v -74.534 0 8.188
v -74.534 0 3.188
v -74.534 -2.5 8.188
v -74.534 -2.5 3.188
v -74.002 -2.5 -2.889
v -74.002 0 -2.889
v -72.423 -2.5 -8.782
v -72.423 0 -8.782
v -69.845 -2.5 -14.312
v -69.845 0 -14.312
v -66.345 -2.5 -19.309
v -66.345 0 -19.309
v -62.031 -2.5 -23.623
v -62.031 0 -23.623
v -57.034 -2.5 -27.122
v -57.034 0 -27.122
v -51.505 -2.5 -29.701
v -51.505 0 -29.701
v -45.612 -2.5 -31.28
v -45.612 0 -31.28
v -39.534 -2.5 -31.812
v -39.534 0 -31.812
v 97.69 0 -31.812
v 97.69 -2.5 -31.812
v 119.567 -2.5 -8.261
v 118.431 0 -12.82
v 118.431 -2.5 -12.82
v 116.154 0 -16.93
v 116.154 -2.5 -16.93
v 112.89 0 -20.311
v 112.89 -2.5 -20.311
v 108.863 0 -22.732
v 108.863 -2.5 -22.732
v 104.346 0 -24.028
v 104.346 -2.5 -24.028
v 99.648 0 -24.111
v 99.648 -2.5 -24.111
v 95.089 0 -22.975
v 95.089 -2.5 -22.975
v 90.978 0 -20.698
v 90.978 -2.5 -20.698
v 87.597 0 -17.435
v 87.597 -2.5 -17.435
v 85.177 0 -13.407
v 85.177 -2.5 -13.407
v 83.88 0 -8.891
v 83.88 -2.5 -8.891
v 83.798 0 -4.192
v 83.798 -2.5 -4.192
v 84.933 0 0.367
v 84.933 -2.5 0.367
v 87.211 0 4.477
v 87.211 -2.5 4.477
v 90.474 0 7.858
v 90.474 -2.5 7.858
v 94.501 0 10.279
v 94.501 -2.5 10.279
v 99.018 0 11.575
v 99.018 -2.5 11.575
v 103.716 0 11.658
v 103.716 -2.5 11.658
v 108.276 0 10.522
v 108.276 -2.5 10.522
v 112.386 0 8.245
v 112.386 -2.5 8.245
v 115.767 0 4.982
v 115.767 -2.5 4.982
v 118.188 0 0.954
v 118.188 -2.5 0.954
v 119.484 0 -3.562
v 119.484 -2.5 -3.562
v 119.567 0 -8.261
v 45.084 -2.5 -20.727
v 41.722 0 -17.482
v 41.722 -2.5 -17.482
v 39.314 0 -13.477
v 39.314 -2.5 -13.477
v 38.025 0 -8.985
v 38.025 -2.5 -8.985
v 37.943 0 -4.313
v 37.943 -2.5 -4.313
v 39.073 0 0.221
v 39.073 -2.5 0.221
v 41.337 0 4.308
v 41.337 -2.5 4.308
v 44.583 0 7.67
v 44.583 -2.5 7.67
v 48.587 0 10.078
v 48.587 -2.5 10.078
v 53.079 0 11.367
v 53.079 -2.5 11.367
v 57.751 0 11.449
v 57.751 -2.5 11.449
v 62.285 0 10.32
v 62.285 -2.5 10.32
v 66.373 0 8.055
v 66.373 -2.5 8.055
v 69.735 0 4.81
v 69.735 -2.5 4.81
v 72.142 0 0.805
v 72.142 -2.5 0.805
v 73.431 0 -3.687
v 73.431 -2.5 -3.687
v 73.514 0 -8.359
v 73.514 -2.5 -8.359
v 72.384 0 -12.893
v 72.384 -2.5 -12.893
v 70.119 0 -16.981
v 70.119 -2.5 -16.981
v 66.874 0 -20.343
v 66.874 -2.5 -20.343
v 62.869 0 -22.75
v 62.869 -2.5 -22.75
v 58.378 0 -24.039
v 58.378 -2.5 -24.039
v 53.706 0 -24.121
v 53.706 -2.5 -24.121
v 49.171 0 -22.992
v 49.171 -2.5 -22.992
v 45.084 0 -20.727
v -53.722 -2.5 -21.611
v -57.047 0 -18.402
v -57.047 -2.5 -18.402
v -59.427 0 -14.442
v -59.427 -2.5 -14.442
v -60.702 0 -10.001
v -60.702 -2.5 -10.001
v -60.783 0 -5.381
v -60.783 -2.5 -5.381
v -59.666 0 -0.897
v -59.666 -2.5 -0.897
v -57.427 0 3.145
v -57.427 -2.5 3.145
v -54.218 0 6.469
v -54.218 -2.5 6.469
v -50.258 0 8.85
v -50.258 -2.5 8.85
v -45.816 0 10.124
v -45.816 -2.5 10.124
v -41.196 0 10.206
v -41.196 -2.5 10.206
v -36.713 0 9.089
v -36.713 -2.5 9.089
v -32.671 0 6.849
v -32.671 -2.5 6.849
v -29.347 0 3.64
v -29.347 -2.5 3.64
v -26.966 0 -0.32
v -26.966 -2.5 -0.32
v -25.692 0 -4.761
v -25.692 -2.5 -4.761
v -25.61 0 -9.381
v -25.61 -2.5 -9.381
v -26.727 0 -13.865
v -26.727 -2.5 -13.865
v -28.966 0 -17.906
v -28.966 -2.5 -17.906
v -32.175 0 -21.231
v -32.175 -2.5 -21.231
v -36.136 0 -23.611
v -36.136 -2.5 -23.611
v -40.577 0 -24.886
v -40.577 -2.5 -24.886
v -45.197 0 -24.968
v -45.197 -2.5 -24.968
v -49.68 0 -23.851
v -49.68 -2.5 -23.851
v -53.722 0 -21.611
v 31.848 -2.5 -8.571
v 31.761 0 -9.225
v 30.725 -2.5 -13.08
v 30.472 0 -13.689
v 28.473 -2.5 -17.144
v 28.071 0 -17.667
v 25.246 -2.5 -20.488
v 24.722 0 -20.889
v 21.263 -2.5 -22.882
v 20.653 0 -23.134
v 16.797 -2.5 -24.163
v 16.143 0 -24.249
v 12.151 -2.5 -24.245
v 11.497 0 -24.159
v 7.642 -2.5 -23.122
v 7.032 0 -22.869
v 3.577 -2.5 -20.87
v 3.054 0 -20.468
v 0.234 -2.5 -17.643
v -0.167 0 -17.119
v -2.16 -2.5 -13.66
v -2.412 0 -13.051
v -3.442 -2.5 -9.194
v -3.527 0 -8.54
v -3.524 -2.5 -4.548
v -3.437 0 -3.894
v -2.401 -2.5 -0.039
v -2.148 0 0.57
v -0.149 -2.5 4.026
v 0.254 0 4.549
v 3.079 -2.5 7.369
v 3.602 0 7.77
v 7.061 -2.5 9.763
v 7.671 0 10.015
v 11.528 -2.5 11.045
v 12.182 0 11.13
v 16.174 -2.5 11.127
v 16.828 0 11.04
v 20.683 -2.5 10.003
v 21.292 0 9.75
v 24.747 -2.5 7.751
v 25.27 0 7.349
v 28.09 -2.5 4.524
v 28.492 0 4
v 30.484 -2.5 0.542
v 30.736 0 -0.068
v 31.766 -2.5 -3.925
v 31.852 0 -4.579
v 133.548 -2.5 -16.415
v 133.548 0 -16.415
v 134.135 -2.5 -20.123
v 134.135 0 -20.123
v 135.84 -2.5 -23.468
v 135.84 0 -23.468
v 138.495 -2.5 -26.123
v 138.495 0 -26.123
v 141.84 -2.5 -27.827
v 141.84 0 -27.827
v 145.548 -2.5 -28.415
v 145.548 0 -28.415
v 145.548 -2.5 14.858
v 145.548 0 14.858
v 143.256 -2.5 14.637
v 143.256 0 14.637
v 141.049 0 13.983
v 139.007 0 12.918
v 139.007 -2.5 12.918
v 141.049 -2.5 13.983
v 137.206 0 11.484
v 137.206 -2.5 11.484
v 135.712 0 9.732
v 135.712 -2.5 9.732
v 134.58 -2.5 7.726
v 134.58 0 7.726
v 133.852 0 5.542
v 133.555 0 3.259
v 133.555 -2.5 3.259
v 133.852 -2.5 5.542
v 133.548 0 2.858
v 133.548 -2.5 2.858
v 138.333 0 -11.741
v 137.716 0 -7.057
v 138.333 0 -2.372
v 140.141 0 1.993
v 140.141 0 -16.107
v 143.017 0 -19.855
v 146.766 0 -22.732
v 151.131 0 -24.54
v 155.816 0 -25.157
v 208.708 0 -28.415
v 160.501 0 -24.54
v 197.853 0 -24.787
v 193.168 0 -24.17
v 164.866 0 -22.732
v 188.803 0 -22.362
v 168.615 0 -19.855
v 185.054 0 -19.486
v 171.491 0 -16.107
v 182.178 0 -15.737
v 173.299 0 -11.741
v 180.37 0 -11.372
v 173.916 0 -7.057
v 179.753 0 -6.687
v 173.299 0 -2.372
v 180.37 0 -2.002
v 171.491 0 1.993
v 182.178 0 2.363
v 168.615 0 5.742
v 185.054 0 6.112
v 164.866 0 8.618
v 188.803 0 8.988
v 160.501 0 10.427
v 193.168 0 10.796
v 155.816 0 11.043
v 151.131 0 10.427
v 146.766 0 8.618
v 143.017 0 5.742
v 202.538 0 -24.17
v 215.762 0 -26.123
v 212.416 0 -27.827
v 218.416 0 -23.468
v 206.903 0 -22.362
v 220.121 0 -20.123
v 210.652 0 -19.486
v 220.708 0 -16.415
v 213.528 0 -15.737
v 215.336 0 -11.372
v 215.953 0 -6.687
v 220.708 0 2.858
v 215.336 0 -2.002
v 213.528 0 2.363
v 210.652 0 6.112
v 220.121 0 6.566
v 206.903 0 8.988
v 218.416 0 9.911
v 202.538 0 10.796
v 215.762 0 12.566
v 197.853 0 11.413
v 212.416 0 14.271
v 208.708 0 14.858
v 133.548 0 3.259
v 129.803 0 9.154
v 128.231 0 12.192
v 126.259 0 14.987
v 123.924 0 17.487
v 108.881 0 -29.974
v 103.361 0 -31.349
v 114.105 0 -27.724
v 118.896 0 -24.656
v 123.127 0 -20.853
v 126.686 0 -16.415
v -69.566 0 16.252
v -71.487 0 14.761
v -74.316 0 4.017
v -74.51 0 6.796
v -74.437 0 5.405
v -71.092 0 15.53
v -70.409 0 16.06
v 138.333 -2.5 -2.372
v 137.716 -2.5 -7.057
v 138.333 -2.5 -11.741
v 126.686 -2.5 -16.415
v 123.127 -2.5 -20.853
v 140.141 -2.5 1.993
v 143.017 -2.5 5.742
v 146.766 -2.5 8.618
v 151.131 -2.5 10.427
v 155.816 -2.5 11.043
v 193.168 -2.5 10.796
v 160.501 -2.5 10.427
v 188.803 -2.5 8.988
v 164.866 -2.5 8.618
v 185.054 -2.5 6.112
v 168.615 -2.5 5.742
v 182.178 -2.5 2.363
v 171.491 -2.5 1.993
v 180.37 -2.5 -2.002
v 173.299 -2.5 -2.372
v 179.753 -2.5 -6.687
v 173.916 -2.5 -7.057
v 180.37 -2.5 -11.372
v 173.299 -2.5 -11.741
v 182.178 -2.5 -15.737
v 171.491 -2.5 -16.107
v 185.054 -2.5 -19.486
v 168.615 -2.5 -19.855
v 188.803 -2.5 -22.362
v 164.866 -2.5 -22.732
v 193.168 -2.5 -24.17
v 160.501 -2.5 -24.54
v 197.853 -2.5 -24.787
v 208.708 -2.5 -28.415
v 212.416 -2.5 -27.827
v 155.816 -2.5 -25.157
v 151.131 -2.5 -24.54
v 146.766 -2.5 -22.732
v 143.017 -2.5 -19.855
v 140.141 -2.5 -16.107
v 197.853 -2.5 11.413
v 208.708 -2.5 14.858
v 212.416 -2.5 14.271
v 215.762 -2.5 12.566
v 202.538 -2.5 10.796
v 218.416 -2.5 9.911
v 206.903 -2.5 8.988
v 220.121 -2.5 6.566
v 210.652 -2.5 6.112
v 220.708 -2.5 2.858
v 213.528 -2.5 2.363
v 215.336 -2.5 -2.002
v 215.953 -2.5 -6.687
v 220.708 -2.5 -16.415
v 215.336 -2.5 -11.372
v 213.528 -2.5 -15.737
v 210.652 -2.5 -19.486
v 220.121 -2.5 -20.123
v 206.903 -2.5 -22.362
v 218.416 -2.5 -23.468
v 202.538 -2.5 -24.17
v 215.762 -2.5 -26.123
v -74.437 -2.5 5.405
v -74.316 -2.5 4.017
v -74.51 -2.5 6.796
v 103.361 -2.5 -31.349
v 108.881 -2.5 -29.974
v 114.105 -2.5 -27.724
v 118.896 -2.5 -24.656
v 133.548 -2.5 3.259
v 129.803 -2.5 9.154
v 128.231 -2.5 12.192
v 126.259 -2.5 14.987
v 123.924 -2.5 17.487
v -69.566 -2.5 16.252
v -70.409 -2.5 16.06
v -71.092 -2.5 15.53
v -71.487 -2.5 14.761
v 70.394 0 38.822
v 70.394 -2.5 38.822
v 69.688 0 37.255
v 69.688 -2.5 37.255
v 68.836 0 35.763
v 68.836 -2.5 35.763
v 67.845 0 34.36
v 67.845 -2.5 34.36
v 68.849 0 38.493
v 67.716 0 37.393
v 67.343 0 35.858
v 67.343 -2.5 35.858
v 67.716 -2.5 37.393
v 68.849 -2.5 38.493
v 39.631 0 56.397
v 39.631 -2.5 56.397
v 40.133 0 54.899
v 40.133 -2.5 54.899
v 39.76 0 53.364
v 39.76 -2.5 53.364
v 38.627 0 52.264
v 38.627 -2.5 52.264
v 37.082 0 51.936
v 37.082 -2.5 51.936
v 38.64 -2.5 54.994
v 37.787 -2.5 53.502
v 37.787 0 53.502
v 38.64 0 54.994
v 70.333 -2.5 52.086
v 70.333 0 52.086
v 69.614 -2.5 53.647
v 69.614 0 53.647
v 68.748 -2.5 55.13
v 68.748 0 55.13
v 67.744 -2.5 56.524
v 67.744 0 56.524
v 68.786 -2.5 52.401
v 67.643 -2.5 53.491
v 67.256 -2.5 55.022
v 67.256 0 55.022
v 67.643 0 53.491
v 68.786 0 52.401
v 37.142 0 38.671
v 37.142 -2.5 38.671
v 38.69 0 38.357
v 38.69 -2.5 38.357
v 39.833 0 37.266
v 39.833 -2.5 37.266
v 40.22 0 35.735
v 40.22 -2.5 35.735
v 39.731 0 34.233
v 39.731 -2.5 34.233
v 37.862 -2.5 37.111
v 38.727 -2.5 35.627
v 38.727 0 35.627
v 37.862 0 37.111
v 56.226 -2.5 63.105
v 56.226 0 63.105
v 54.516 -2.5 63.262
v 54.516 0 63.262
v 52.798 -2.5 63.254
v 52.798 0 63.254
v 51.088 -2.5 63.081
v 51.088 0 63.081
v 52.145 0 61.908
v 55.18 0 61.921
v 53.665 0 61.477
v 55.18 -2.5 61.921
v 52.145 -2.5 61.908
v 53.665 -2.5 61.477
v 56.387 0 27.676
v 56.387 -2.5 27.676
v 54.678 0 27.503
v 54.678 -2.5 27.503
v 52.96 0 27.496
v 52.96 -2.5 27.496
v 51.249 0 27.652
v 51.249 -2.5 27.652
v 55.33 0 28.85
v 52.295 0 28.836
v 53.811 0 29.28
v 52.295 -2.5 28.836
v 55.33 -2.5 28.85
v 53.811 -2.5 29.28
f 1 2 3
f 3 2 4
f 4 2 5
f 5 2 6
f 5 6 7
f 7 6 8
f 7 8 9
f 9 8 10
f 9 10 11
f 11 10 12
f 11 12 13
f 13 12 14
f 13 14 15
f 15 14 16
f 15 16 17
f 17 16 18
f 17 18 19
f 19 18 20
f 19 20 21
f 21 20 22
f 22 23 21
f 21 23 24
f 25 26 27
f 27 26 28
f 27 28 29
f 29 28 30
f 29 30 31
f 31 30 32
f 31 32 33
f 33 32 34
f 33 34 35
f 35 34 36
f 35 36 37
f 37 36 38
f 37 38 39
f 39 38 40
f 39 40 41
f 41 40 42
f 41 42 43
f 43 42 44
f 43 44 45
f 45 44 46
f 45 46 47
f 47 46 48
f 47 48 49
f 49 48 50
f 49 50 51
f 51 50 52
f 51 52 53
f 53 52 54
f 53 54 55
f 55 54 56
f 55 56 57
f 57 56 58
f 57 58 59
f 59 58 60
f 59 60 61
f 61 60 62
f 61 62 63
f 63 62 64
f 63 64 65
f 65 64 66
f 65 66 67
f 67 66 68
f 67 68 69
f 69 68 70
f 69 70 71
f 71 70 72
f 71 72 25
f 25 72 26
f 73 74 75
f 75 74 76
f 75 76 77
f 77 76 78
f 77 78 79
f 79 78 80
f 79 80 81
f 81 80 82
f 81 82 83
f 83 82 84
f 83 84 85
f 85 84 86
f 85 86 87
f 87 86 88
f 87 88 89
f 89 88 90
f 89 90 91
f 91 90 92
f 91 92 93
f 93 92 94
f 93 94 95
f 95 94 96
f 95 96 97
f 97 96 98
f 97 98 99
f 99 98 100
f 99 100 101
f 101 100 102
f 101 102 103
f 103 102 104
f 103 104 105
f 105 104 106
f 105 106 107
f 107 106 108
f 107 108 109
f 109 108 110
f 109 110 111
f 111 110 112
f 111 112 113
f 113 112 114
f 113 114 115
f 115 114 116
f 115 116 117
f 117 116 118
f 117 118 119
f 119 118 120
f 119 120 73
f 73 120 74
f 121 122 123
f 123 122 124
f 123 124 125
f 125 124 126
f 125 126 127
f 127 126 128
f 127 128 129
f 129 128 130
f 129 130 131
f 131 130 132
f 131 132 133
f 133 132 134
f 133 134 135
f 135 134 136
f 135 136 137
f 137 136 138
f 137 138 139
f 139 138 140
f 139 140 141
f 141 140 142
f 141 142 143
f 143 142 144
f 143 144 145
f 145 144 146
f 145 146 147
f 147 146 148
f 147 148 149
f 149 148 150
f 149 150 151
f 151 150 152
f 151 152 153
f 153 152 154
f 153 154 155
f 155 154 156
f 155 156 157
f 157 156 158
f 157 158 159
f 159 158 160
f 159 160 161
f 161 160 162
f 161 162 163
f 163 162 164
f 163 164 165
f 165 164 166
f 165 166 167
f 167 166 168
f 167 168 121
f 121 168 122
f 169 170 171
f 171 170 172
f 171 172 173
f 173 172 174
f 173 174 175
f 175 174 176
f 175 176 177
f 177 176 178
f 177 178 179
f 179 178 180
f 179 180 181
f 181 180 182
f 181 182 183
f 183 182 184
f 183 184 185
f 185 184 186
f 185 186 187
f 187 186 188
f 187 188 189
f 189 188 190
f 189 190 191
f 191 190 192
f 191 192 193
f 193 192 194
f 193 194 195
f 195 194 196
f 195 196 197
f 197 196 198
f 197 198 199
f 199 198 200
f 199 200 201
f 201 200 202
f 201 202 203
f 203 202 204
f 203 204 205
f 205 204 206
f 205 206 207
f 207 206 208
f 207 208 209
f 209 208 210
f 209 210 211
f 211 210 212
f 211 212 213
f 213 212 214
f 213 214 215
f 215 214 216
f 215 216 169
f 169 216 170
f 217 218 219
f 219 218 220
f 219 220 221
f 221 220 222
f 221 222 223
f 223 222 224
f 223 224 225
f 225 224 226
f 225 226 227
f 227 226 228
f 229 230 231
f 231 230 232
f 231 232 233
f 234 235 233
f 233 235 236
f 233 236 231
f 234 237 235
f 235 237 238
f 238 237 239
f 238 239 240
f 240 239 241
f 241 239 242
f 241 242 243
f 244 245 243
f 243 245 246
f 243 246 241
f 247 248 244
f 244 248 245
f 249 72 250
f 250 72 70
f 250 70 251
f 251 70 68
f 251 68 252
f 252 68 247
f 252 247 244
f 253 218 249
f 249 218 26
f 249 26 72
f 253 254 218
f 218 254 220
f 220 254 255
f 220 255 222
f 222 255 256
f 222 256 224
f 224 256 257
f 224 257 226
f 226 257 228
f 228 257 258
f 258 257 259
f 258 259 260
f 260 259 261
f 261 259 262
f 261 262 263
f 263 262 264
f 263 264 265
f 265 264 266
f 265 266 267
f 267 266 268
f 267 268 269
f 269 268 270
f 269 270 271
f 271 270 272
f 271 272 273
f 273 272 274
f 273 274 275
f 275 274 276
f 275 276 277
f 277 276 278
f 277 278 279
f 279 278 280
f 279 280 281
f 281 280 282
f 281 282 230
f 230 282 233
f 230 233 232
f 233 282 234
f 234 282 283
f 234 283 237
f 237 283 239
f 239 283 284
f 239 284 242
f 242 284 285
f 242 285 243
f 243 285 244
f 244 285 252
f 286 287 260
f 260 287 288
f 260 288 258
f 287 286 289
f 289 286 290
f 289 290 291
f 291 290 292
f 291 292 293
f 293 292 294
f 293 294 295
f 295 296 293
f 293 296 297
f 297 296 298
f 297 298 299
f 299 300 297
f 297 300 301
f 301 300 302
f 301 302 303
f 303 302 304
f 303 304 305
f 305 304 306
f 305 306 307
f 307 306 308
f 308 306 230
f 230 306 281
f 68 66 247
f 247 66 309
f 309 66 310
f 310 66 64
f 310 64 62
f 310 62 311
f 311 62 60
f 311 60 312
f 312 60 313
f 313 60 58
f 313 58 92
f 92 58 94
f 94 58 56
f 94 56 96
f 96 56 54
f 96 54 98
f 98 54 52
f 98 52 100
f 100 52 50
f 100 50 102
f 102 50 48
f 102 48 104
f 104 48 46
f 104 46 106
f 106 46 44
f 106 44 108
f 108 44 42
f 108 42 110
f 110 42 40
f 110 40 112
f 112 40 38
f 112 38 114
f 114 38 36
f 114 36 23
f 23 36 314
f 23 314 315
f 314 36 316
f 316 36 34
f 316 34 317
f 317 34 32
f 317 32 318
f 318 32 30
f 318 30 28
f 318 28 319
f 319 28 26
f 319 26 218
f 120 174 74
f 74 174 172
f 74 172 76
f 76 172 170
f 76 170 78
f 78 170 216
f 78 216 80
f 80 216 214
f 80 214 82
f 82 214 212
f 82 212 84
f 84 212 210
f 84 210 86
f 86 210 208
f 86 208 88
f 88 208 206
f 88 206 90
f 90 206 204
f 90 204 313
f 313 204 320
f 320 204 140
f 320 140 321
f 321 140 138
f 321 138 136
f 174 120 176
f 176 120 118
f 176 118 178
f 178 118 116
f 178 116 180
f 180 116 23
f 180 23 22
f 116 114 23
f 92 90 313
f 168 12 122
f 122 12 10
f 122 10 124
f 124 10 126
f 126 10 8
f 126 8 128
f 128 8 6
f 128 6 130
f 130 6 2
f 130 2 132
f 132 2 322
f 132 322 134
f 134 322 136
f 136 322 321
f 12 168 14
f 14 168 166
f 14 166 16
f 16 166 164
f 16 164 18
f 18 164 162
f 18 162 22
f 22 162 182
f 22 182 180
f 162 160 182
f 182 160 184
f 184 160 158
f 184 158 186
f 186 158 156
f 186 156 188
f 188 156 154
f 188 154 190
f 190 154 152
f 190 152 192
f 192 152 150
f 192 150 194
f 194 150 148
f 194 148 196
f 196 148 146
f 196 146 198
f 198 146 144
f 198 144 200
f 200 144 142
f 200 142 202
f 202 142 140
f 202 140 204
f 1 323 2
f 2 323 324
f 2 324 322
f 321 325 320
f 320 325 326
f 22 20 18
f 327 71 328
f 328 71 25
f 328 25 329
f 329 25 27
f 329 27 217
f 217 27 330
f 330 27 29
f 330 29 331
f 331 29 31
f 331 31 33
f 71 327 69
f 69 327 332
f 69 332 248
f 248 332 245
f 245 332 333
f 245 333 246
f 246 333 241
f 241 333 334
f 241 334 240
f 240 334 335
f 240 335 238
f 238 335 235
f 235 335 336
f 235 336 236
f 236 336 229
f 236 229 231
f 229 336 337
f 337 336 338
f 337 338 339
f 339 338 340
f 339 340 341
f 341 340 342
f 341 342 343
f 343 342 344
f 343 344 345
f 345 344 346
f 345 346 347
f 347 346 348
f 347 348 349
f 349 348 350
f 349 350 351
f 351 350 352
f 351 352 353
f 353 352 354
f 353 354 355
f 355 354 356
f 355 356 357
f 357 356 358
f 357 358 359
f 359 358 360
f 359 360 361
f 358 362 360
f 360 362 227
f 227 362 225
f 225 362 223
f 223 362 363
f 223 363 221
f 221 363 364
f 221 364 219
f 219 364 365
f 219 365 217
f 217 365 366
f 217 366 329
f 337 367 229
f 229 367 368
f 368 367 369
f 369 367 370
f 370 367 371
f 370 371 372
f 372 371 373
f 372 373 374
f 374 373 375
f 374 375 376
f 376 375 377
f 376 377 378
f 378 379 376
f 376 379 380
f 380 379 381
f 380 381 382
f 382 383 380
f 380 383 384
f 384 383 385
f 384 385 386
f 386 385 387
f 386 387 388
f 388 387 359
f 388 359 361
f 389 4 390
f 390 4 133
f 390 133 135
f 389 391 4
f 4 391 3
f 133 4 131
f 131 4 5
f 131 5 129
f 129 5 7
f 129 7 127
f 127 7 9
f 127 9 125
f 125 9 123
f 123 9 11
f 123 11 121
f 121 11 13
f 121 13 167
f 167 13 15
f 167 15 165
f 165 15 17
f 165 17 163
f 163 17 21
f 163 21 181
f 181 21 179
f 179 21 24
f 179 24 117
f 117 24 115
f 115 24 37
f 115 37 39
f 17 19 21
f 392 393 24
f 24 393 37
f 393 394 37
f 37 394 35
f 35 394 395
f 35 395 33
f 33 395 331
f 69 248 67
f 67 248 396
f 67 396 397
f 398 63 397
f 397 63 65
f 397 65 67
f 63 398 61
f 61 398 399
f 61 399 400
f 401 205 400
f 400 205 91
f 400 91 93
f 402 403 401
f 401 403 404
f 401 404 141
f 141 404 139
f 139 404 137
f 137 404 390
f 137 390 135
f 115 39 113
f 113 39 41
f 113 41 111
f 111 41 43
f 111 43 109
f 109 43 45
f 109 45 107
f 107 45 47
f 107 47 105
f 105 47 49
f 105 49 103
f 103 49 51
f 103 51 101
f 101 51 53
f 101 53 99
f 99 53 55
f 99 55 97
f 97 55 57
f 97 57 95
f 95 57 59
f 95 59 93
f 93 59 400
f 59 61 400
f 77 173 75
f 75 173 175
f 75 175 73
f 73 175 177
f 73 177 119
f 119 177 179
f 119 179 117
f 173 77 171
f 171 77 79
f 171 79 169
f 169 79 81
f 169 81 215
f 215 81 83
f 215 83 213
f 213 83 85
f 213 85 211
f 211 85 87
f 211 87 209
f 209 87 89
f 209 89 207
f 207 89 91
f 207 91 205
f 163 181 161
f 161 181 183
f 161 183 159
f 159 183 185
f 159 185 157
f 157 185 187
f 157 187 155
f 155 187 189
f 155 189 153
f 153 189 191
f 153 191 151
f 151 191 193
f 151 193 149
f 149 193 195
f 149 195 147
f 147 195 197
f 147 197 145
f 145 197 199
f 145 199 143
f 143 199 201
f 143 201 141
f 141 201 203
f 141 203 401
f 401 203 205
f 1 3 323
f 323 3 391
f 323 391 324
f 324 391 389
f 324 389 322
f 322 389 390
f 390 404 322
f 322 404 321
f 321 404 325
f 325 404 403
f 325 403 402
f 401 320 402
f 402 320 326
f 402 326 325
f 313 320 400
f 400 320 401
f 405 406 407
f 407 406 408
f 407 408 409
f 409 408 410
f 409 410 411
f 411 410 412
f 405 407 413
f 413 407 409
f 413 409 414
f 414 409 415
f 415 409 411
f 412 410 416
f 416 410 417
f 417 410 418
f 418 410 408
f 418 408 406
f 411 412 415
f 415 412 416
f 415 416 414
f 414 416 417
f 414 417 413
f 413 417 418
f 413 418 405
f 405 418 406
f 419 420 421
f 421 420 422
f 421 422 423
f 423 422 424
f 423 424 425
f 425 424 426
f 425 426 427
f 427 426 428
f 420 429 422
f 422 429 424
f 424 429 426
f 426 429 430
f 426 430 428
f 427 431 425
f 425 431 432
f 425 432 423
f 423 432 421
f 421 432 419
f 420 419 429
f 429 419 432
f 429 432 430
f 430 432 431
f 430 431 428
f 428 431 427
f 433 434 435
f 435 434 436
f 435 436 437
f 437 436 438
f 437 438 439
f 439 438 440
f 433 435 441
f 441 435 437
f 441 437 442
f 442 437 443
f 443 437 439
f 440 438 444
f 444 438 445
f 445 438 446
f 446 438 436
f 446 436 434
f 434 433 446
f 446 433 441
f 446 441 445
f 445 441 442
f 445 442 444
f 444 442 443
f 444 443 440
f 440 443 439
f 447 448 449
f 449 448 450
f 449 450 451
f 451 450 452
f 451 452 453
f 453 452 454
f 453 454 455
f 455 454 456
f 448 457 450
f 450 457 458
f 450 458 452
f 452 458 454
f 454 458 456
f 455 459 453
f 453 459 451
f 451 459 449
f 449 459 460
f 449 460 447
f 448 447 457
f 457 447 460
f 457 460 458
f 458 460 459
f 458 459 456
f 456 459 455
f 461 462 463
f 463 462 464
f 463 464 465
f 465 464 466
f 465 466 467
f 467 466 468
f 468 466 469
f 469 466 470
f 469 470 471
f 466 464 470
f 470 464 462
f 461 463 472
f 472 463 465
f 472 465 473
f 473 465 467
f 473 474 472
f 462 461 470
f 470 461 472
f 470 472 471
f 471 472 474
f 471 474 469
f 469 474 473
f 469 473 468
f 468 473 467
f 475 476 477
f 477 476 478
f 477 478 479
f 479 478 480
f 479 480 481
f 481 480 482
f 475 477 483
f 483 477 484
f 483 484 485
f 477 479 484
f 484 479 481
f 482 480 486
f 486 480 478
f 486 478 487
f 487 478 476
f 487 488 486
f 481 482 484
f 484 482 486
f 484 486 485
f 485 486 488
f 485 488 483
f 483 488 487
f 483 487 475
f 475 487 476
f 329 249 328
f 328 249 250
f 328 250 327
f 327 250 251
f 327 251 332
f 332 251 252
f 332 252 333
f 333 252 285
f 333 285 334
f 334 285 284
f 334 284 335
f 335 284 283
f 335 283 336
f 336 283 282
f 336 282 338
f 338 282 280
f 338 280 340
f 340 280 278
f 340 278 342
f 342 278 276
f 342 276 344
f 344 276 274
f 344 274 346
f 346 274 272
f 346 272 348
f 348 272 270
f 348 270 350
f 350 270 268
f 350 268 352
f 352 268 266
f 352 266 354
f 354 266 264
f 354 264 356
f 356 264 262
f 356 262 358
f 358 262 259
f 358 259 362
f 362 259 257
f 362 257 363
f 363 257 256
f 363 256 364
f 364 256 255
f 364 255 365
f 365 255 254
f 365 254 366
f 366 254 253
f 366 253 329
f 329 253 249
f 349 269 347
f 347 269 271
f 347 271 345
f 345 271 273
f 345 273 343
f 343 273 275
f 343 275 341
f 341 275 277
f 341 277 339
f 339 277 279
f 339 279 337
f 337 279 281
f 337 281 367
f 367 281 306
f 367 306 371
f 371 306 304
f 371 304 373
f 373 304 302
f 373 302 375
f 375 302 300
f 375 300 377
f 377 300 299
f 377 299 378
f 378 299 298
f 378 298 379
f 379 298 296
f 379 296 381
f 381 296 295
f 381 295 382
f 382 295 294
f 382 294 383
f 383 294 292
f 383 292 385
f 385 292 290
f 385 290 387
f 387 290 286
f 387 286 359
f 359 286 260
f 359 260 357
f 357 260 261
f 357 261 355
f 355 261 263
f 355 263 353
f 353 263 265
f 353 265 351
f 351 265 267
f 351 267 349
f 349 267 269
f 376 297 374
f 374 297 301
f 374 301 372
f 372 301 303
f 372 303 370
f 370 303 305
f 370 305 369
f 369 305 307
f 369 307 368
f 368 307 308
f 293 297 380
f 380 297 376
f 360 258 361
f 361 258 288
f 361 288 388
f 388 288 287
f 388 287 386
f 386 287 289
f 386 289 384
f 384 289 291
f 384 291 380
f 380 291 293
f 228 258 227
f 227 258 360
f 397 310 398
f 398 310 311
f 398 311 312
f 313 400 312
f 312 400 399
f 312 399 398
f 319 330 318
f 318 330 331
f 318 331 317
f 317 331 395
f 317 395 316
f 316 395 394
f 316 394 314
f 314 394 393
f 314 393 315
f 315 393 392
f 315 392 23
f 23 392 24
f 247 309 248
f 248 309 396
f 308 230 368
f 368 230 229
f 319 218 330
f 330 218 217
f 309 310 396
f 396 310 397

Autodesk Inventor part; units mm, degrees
ref_plane "YZ Plane" through (0, 0, 0) normal (1, 0, 0) x (0, 1, 0)
ref_plane "XZ Plane" through (0, 0, 0) normal (0, 1, 0) x (-1, 0, 0)
ref_plane "XY Plane" through (0, 0, 0) normal (0, 0, 1) x (1, 0, 0)
sketch "BASEsc" plane through (0, 0, 0) normal (0, 1, 0) x (-1, 0, 0)
  arc A0 (-30.7364, -0.0681) -> (-28.0904, 4.5242) centre (-30.3216, 2.7513) ccw
  arc A1 (-16.8277, 11.04) -> (-11.5277, 11.0446) centre (-14.1786, 12.0904) ccw
  arc A2 (-11.4967, -24.1586) -> (-16.7967, -24.1633) centre (-14.1458, -25.2091) ccw
  arc A3 (-0.2535, 4.5487) -> (2.4005, -0.0389) centre (1.9807, 2.7798) ccw
  arc A4 (-28.0709, -17.6674) -> (-30.7249, -13.0798) centre (-30.3051, -15.8984) ccw
  circle A5 centre (-14.1622, -6.5593) radius 17.8
  arc A6 (2.412, -13.0506) -> (-0.234, -17.6429) centre (1.9972, -15.87) ccw
  circle A7 centre (-55.7283, -6.3362) radius 17.9
  arc A8 (-58.3938, 11.2631) -> (-53.0938, 11.2678) centre (-55.7447, 12.3136) ccw
  arc A9 (-41.8196, 4.7719) -> (-39.1656, 0.1843) centre (-39.5854, 3.0029) ccw
  arc A10 (-72.3025, 0.1551) -> (-69.6565, 4.7474) centre (-71.8877, 2.9745) ccw
  arc A11 (-69.637, -17.4442) -> (-72.291, -12.8566) centre (-71.8712, -15.6753) ccw
  arc A12 (-53.0767, -24.0387) -> (-58.3776, -24.039) centre (-55.7271, -25.0859) ccw
  arc A13 (-39.1541, -12.8274) -> (-41.8001, -17.4197) centre (-39.569, -15.6468) ccw
  circle A14 centre (-101.6822, -6.2265) radius 18
  arc A15 (-99.0445, -24.0322) -> (-104.3463, -24.0282) centre (-101.6962, -25.0761) ccw
  arc A16 (-39.0717, -12.8911) -> (-41.7218, -17.4819) centre (-39.49, -15.71) ccw
  arc A17 (-41.7233, 4.8114) -> (-39.0725, 0.2209) centre (-39.4912, 3.0397) ccw
  arc A18 (-58.3799, 11.3664) -> (-53.079, 11.3667) centre (-55.7295, 12.4135) ccw
  arc A19 (-72.3849, 0.2188) -> (-69.7348, 4.8096) centre (-71.9666, 3.0377) ccw
  arc A20 (-69.7334, -17.4837) -> (-72.3841, -12.8932) centre (-71.9654, -15.7121) ccw
  circle A21 centre (43.1966, -7.3809) radius 17.7
  arc A22 (45.8761, -24.8769) -> (40.5769, -24.886) centre (43.2283, -25.9306) ccw
  circle A23 centre (45.2732, 42.9601) radius 17.7
  arc A24 (47.7889, 25.4398) -> (42.6535, 25.455) centre (45.2175, 24.2112) ccw
  arc A25 (-51.2492, 27.6525) -> (-56.3871, 27.6758) centre (-53.8237, 26.4307) ccw
  circle A26 centre (-53.7378, 45.3786) radius 17.9
  arc A27 (-84.9432, -12.845) -> (-87.5975, -17.4345) centre (-85.365, -15.6634) ccw
  arc A28 (-87.5809, 4.9607) -> (-84.9334, 0.3672) centre (-85.351, 3.1862) ccw
  arc A29 (-104.3199, 11.5792) -> (-99.0181, 11.5753) centre (-101.6682, 12.6231) ccw
  arc A30 (-118.4212, 0.3921) -> (-115.7669, 4.9816) centre (-117.9994, 3.2104) ccw
  arc A31 (-115.7835, -17.4136) -> (-118.431, -12.8202) centre (-118.0134, -15.6392) ccw
  arc A32 (-37.1422, 38.6707) -> (-39.7313, 34.2328) centre (-37.3714, 35.8302) ccw
  arc A33 (-39.6308, 56.3969) -> (-37.082, 51.9357) centre (-37.2854, 54.7782) ccw
  arc A34 (-56.2264, 63.1048) -> (-51.0885, 63.0815) centre (-53.6518, 64.3265) ccw
  arc A35 (-70.3334, 52.0865) -> (-67.7443, 56.5244) centre (-70.1042, 54.927) ccw
  arc A36 (-67.8448, 34.3603) -> (-70.3936, 38.8215) centre (-70.1901, 35.9791) ccw
  arc A37 (61.7041, 36.3785) -> (59.1232, 31.9388) centre (61.4824, 33.5374) ccw
  arc A38 (59.1885, 53.8989) -> (61.7429, 49.4439) centre (61.5381, 52.2863) ccw
  arc A39 (42.7576, 60.4804) -> (47.8929, 60.4652) centre (45.3289, 61.7089) ccw
  arc A40 (28.8424, 49.5417) -> (31.4233, 53.9813) centre (29.0641, 52.3828) ccw
  arc A41 (31.358, 32.0213) -> (28.8036, 36.4763) centre (29.0084, 33.6339) ccw
  arc A42 (59.6883, -13.8084) -> (57.0466, -18.4022) centre (59.2769, -16.6283) ccw
  arc A43 (57.0088, 3.6876) -> (59.6663, -0.8971) centre (59.2452, 1.9214) ccw
  arc A44 (40.5171, 10.1151) -> (45.8163, 10.1242) centre (43.1649, 11.1688) ccw
  arc A45 (26.7049, -0.9534) -> (29.3466, 3.6404) centre (27.1162, 1.8665) ccw
  arc A46 (29.3843, -18.4494) -> (26.7269, -13.8647) centre (27.1479, -16.6832) ccw
  line L0 (39.5339, -31.8115) -> (-97.6905, -31.8115)
  line L1 (-132.6905, 3.1885) -> (-132.6905, 34.7246)
  line L2 (-76.3868, 69.7246) -> (-21.7967, 69.7246)
  line L3 (74.5339, 34.7246) -> (74.5339, 3.1885)
  arc A47 (34.5339, -31.8115) -> (74.5339, 8.1885) centre (34.5339, 8.1885) ccw
  arc A48 (74.5339, 34.7246) -> (39.5339, 69.7246) centre (39.5339, 34.7246) ccw
  arc A49 (39.5339, -31.8115) -> (74.5339, 3.1885) centre (39.5339, 3.1885) ccw
  arc A50 (-132.6905, 3.1885) -> (-97.6905, -31.8115) centre (-97.6905, 3.1885) ccw
  arc A51 (-97.6905, 69.7246) -> (-132.6905, 34.7246) centre (-97.6905, 34.7246) ccw
  line L4 (-86.3868, 24.2112) -> (-132.6905, 24.2112)
  line L5 (-132.6905, 24.2112) -> (-132.6905, 69.7246)
  line L6 (-132.6905, 69.7246) -> (-81.3868, 69.7246)
  line L7 (-81.3868, 64.7246) -> (-81.3868, 29.2112)
  line L8 (14.5191, 69.7246) -> (-16.7967, 69.7246)
  line L9 (-16.7967, 64.7246) -> (-16.7967, 23.9565)
  line L10 (-11.7967, 18.9565) -> (9.5191, 18.9565)
  line L11 (14.5191, 23.9565) -> (14.5191, 69.7246)
  arc A52 (9.5191, 18.9565) -> (14.5191, 23.9565) centre (9.5191, 23.9565) ccw
  arc A53 (-16.7967, 23.9565) -> (-11.7967, 18.9565) centre (-11.7967, 23.9565) ccw
  arc A54 (-86.3868, 24.2112) -> (-81.3868, 29.2112) centre (-86.3868, 29.2112) ccw
  arc A55 (-76.3868, 69.7246) -> (-81.3868, 64.7246) centre (-76.3868, 64.7246) ccw
  arc A56 (-16.7967, 64.7246) -> (-21.7967, 69.7246) centre (-21.7967, 64.7246) ccw
  line L12 (39.5339, 69.7246) -> (-21.7967, 69.7246)
  line L13 (74.5339, 3.1885) -> (71.4874, 14.7614)
  line L14 (69.5661, 16.2522) -> (-124.7088, 17.4921)
  line L15 (-126.5328, 16.3402) -> (-132.6905, 3.1885)
  arc A57 (71.4874, 14.7614) -> (69.5661, 16.2522) centre (69.5533, 14.2523) ccw
  arc A58 (-124.7088, 17.4921) -> (-126.5328, 16.3402) centre (-124.7215, 15.4921) ccw
  circle A59 centre (-155.8159, -7.0568) radius 18.1
  arc A60 (-153.1971, -24.9663) -> (-158.4461, -24.9646) centre (-155.8219, -25.965) ccw
  arc A61 (-138.9964, -13.7436) -> (-141.6223, -18.2885) centre (-139.4438, -16.5161) ccw
  arc A62 (-141.6152, 4.166) -> (-138.9922, -0.3806) centre (-139.4379, 2.3922) ccw
  arc A63 (-158.4347, 10.8528) -> (-153.1858, 10.8511) centre (-155.8099, 11.8515) ccw
  arc A64 (-172.6354, -0.3699) -> (-170.0095, 4.175) centre (-172.188, 2.4026) ccw
  arc A65 (-170.0166, -18.2795) -> (-172.6397, -13.7329) centre (-172.194, -16.5057) ccw
  arc A66 (-183.6523, 4.5357) -> (-181.0293, -0.0109) centre (-181.475, 2.7619) ccw
  arc A67 (-200.4718, 11.2225) -> (-195.2229, 11.2208) centre (-197.847, 12.2212) ccw
  arc A68 (-214.6725, -0.0003) -> (-212.0466, 4.5446) centre (-214.2251, 2.7723) ccw
  arc A69 (-212.0537, -17.9098) -> (-214.6768, -13.3632) centre (-214.2311, -16.136) ccw
  arc A70 (-195.2342, -24.5966) -> (-200.4832, -24.595) centre (-197.859, -25.5954) ccw
  circle A71 centre (-197.853, -6.6871) radius 18.1
  arc A72 (-181.0335, -13.3739) -> (-183.6594, -17.9188) centre (-181.481, -16.1464) ccw
  line L16 (-145.5481, -28.4145) -> (-208.7082, -28.4145)
  line L17 (-220.7082, -16.4145) -> (-220.7082, 2.858)
  line L18 (-208.7082, 14.858) -> (-145.5481, 14.858)
  line L19 (-133.5481, 2.858) -> (-133.5481, -16.4145)
  arc A73 (-145.5481, -28.4145) -> (-133.5481, -16.4145) centre (-145.5481, -16.4145) ccw
  arc A74 (-220.7082, -16.4145) -> (-208.7082, -28.4145) centre (-208.7082, -16.4145) ccw
  arc A75 (-208.7082, 14.858) -> (-220.7082, 2.858) centre (-208.7082, 2.858) ccw
  arc A76 (-133.5481, 2.858) -> (-145.5481, 14.858) centre (-145.5481, 2.858) ccw
  point P0 (0, 0)
  point P1 (-14.1467, -24.3593)
  point P2 (-27.8531, 1.3272)
  point P3 (-14.1777, 9.2407)
  point P4 (-14.1467, -22.3593)
  point P5 (-0.4868, 1.3541)
  point P6 (-27.8376, -14.4728)
  point P7 (-0.4712, -14.4459)
  point P8 (-41.5661, 0.2232)
  point P9 (-55.7127, -24.2361)
  point P10 (-55.7438, 9.4638)
  point P11 (-42.0529, 1.5773)
  point P12 (-69.4193, 1.5504)
  point P13 (-69.4038, -14.2496)
  point P14 (-55.7127, -22.2361)
  point P15 (-42.0374, -14.2227)
  point P16 (-87.52, 0.3329)
  point P17 (-101.6665, -24.2265)
  point P18 (-101.6977, 9.5735)
  point P19 (-88.0068, 1.6869)
  point P20 (-115.3732, 1.6601)
  point P21 (-115.3576, -14.1399)
  point P22 (-101.6665, -22.2265)
  point P23 (-87.9913, -14.1131)
  point P24 (-41.9507, -14.2726)
  point P25 (-41.9663, 1.6273)
  point P26 (-55.7439, 9.5638)
  point P27 (-69.5059, 1.6003)
  point P28 (-69.4903, -14.2997)
  point P29 (57.3588, -0.8216)
  point P30 (29.5211, -15.2943)
  point P31 (56.872, 0.5325)
  point P32 (43.212, -25.0809)
  point P33 (29.5056, 0.5057)
  point P34 (43.1811, 8.4191)
  point P35 (56.8875, -15.2675)
  point P36 (43.212, -23.0809)
  point P37 (59.4354, 49.5194)
  point P38 (31.5978, 35.0467)
  point P39 (58.9487, 50.8735)
  point P40 (45.2887, 25.2601)
  point P41 (31.5823, 50.8467)
  point P42 (45.2577, 58.7601)
  point P43 (58.9642, 35.0735)
  point P44 (45.2887, 27.0601)
  point P45 (-40.0468, 37.492)
  point P46 (-39.5756, 51.9379)
  point P47 (-40.0623, 53.292)
  point P48 (-53.7222, 29.2786)
  point P49 (-53.7222, 27.4786)
  point P50 (-53.7533, 61.1786)
  point P51 (-67.4287, 53.2652)
  point P52 (-67.4132, 37.4652)
  point P53 (-87.818, -14.2129)
  point P54 (-87.8336, 1.7871)
  point P55 (-101.6979, 9.7735)
  point P56 (-115.5464, 1.7599)
  point P57 (-115.5308, -14.2401)
  point P58 (-39.787, 37.3421)
  point P59 (-39.8026, 53.4421)
  point P60 (-53.7534, 61.4786)
  point P61 (-67.6886, 53.4151)
  point P62 (-67.673, 37.3151)
  point P63 (59.0507, 35.0234)
  point P64 (59.0353, 50.9234)
  point P65 (45.2578, 58.8601)
  point P66 (31.4957, 50.8967)
  point P67 (31.5111, 34.9967)
  point P68 (56.8009, -15.2175)
  point P69 (56.7855, 0.4824)
  point P70 (43.1812, 8.3191)
  point P71 (29.5923, 0.4557)
  point P72 (29.6077, -15.2442)
  point P73 (-97.6905, 69.7246)
  point P74 (-16.7967, 69.7246)
  point P75 (-67.8448, 34.3603)
  point P76 (-39.7313, 34.2328)
  point P77 (-37.1422, 38.6707)
  point P78 (-37.082, 51.9357)
  point P79 (-51.0885, 63.0815)
  point P80 (-67.7443, 56.5244)
  point P81 (-70.3334, 52.0865)
  point P82 (-118.431, -12.8202)
  point P83 (-115.7835, -17.4136)
  point P84 (-87.5975, -17.4345)
  point P85 (-84.9334, 0.3672)
  point P86 (-87.5809, 4.9607)
  point P87 (-104.3199, 11.5792)
  point P88 (-115.7669, 4.9816)
  point P89 (-118.4212, 0.3921)
  point P90 (-72.3841, -12.8932)
  point P91 (-39.0725, 0.2209)
  point P92 (-41.7233, 4.8114)
  point P93 (-53.079, 11.3667)
  point P94 (-58.3799, 11.3664)
  point P95 (-69.7348, 4.8096)
  point P96 (-72.3849, 0.2188)
  point P97 (-0.234, -17.6429)
  point P98 (2.412, -13.0506)
  point P99 (2.4005, -0.0389)
  point P100 (-0.2535, 4.5487)
  point P101 (-11.5277, 11.0446)
  point P102 (-16.8277, 11.04)
  point P103 (-28.0904, 4.5242)
  point P104 (-30.7364, -0.0681)
  point P105 (-28.0709, -17.6674)
  point P106 (29.3843, -18.4494)
  point P107 (59.6883, -13.8084)
  point P108 (59.6663, -0.8971)
  point P109 (57.0088, 3.6876)
  point P110 (40.5171, 10.1151)
  point P111 (29.3466, 3.6404)
  point P112 (26.7049, -0.9534)
  point P113 (47.8929, 60.4652)
  point P114 (31.4233, 53.9813)
  point P115 (28.8424, 49.5417)
  point P116 (74.3158, 4.017)
  point P117 (-141.6537, -0.4974)
  point P118 (-169.4914, -14.9702)
  point P119 (-142.1405, 0.8567)
  point P120 (-155.7964, -25.1567)
  point P121 (-169.5069, 0.8298)
  point P122 (-155.8314, 8.7432)
  point P123 (-142.125, -14.9433)
  point P124 (-155.7988, -23.1567)
  point P125 (-141.8644, -15.092)
  point P126 (-141.8814, 1.008)
  point P127 (-155.833, 9.0432)
  point P128 (-169.7674, 0.9785)
  point P129 (-169.7504, -15.1215)
  point P130 (-151.8242, 2.3582)
  point P131 (-183.6908, -0.1277)
  point P132 (-184.1776, 1.2264)
  point P133 (-211.5285, -14.6005)
  point P134 (-183.9186, 1.3777)
  point P135 (-197.8701, 9.4129)
  point P136 (-211.8046, 1.3481)
  point P137 (-211.7875, -14.7518)
  point P138 (-184.1621, -14.5736)
  point P139 (-197.8685, 9.1129)
  point P140 (-197.8335, -24.7871)
  point P141 (-197.836, -22.7871)
  point P142 (-211.544, 1.1995)
  point P143 (-183.9015, -14.7223)
  point P144 (-193.8613, 2.7279)
  dimension "d0" = 35.6
  dimension "d1" = 2
  dimension "d2" = 35.8
  dimension "d3" = 2
  dimension "d4" = 36
  dimension "d5" = 2
  dimension "d8" = 360
  dimension "d10" = 35.4
  dimension "d11" = 2
  dimension "d12" = 35.4
  dimension "d13" = 1.8
  dimension "d14" = 35.8
  dimension "d15" = 1.8
  dimension "d18" = 360
  dimension "d22" = 360
  dimension "d26" = 360
  dimension "d30" = 360
  dimension "d32" = 40
  dimension "d33" = 35
  dimension "d34" = 35
  dimension "d35" = 35
  dimension "d36" = 5
  dimension "d46" = 2
  dimension "d51" = 36.2
  dimension "d52" = 2
  dimension "d53" = 360
  dimension "d56" = 36.2
  dimension "d57" = 2
  dimension "d58" = 360
  dimension "d59" = 12
extrude "押し出し1" add sketch "BASEsc" against normal blind 2.5 contours A5 A0 | A0 A5 A1 A3 A6 A2 A4 | A4 A5 | A5 A1 | A2 A5 | A5 A3 | A6 A5 | A7 A16 A12 A20 A19 A18 A17 | A17 A7 | A7 A16 | A18 A7 | A7 A12 | A19 A7 | A7 A20 | A14 A27 A15 A31 A30 A29 A28 | A28 A14 | A14 A27 | A29 A14 | A14 A15 | A30 A14 | A14 A31 | A21 A42 A22 A46 A45 A44 A43 | A43 A21 | A21 A42 | A44 A21 | A21 A22 | A45 A21 | A21 A46 | A23 A37 A24 A41 A40 A39 A38 | A38 A23 | A23 A37 | A39 A23 | A23 A24 | A40 A23 | A23 A41 | A26 A25 | A25 A26 A36 A35 A34 A33 A32 | A32 A26 | A26 A36 | A26 A35 | A33 A26 | A26 A34 | L5 L6 A51 | L0 A47 L13 A49 | L0 A50 L15 A58 L14 A57 L13 A47 | L13 A47 L3 | L13 A57 L14 A58 L15 L1 L4 A54 L7 A55 L2 A56 L9 A53 L10 A52 L11 L12 A48 L3 A47 | L11 A52 L10 A53 L9 A56 L12 L8
extrude "押し出し2" cut sketch "BASEsc" against normal through all contours A0 A5 A1 A3 A6 A2 A4 | A7 A16 A12 A20 A19 A18 A17 | A14 A27 A15 A31 A30 A29 A28 | A21 A42 A22 A46 A45 A44 A43 | A23 A37 A24 A41 A40 A39 A38 | A25 A26 A36 A35 A34 A33 A32
extrude "押し出し3" cut sketch "BASEsc" against normal blind 10 contours L5 L6 A51 | L11 A52 L10 A53 L9 A56 L12 L8
fillet "フィレット1" radius 25 1 edges at (132.6905, -1.25, 24.2112)
extrude "押し出し4" cut sketch "BASEsc" against normal blind 10 contours A5 A0 | A4 A5 | A5 A1 | A2 A5 | A5 A3 | A6 A5 | A17 A7 | A7 A16 | A18 A7 | A7 A12 | A19 A7 | A7 A20 | A28 A14 | A14 A27 | A29 A14 | A14 A15 | A30 A14 | A14 A31 | A43 A21 | A21 A42 | A44 A21 | A21 A22 | A45 A21 | A21 A46 | A38 A23 | A23 A37 | A39 A23 | A23 A24 | A40 A23 | A23 A41
extrude "押し出し5" cut sketch "BASEsc" against normal blind 10 contours L13 A57 L14 A58 L15 L1 L4 A54 L7 A55 L2 A56 L9 A53 L10 A52 L11 L12 A48 L3 A47
extrude "押し出し6" add sketch "BASEsc" against normal blind 2.5 contours L16 A74 L17 A75 L18 A76 L19 A73
sketch "スケッチ2" plane through (0, 0, 0) normal (0, 1, 0) x (1, 0, 0)
  arc A0 (129.8032, 10.7318) -> (97.6905, 31.8115) centre (97.6905, -3.1885) ccw projected
  line L0 (126.6857, 16.4145) -> (133.5481, 16.4145)
  line L1 (133.5481, 16.4145) -> (133.5481, -3.2589)
  line L2 (133.5481, -3.2589) -> (129.8032, -9.1543)
  arc A1 (123.9241, -17.4871) -> (129.8032, 10.7318) centre (106.8656, 0.7888) ccw projected
  circle A2 centre (101.6822, 6.2265) radius 18 projected
  circle A3 centre (55.7283, 6.3362) radius 17.9 projected
  circle A4 centre (-43.1966, 7.3809) radius 17.7 projected
  circle A5 centre (14.1622, 6.5593) radius 17.8 projected
  arc A6 (-74.3158, -4.017) -> (-74.5339, -8.1885) centre (-34.5339, -8.1885) ccw projected
  line L3 (-74.3158, -4.017) -> (-71.4874, -14.7614) projected
  arc A7 (-71.4874, -14.7614) -> (-69.5661, -16.2522) centre (-69.5533, -14.2523) ccw projected
  line L4 (-69.5661, -16.2522) -> (123.9241, -17.4871) projected
  arc A8 (123.9241, -17.4871) -> (129.8032, 10.7318) centre (106.8656, 0.7888) ccw projected
  arc A9 (129.8032, 10.7318) -> (97.6905, 31.8115) centre (97.6905, -3.1885) ccw projected
  line L5 (97.6905, 31.8115) -> (-39.5339, 31.8115) projected
  arc A10 (-39.5339, 31.8115) -> (-74.5339, -3.1885) centre (-39.5339, -3.1885) ccw projected
  line L6 (-74.5339, -3.1885) -> (-74.5339, -8.1885) projected
  point P0 (0, 0)
extrude "押し出し7" add sketch "スケッチ2" against normal blind 2.5 contours A0 L0 L1 L2 A1
equation "\"BendRadius\" = Thickness"
equation "\"BendReliefWidth\" = Thickness"
equation "\"BendReliefDepth\" = 0.5 * Thickness"
equation "\"CornerReliefSize\" = 4 * Thickness"
equation "\"MinimumRemnant\" = 2 * Thickness"
equation "\"TransitionRadius\" = BendRadius"
equation "\"JacobiRadiusSize\" = BendRadius"
equation "\"GapSize\" = Thickness"
equation "\"Thickness\" = 0.5"
properties part number "template"
